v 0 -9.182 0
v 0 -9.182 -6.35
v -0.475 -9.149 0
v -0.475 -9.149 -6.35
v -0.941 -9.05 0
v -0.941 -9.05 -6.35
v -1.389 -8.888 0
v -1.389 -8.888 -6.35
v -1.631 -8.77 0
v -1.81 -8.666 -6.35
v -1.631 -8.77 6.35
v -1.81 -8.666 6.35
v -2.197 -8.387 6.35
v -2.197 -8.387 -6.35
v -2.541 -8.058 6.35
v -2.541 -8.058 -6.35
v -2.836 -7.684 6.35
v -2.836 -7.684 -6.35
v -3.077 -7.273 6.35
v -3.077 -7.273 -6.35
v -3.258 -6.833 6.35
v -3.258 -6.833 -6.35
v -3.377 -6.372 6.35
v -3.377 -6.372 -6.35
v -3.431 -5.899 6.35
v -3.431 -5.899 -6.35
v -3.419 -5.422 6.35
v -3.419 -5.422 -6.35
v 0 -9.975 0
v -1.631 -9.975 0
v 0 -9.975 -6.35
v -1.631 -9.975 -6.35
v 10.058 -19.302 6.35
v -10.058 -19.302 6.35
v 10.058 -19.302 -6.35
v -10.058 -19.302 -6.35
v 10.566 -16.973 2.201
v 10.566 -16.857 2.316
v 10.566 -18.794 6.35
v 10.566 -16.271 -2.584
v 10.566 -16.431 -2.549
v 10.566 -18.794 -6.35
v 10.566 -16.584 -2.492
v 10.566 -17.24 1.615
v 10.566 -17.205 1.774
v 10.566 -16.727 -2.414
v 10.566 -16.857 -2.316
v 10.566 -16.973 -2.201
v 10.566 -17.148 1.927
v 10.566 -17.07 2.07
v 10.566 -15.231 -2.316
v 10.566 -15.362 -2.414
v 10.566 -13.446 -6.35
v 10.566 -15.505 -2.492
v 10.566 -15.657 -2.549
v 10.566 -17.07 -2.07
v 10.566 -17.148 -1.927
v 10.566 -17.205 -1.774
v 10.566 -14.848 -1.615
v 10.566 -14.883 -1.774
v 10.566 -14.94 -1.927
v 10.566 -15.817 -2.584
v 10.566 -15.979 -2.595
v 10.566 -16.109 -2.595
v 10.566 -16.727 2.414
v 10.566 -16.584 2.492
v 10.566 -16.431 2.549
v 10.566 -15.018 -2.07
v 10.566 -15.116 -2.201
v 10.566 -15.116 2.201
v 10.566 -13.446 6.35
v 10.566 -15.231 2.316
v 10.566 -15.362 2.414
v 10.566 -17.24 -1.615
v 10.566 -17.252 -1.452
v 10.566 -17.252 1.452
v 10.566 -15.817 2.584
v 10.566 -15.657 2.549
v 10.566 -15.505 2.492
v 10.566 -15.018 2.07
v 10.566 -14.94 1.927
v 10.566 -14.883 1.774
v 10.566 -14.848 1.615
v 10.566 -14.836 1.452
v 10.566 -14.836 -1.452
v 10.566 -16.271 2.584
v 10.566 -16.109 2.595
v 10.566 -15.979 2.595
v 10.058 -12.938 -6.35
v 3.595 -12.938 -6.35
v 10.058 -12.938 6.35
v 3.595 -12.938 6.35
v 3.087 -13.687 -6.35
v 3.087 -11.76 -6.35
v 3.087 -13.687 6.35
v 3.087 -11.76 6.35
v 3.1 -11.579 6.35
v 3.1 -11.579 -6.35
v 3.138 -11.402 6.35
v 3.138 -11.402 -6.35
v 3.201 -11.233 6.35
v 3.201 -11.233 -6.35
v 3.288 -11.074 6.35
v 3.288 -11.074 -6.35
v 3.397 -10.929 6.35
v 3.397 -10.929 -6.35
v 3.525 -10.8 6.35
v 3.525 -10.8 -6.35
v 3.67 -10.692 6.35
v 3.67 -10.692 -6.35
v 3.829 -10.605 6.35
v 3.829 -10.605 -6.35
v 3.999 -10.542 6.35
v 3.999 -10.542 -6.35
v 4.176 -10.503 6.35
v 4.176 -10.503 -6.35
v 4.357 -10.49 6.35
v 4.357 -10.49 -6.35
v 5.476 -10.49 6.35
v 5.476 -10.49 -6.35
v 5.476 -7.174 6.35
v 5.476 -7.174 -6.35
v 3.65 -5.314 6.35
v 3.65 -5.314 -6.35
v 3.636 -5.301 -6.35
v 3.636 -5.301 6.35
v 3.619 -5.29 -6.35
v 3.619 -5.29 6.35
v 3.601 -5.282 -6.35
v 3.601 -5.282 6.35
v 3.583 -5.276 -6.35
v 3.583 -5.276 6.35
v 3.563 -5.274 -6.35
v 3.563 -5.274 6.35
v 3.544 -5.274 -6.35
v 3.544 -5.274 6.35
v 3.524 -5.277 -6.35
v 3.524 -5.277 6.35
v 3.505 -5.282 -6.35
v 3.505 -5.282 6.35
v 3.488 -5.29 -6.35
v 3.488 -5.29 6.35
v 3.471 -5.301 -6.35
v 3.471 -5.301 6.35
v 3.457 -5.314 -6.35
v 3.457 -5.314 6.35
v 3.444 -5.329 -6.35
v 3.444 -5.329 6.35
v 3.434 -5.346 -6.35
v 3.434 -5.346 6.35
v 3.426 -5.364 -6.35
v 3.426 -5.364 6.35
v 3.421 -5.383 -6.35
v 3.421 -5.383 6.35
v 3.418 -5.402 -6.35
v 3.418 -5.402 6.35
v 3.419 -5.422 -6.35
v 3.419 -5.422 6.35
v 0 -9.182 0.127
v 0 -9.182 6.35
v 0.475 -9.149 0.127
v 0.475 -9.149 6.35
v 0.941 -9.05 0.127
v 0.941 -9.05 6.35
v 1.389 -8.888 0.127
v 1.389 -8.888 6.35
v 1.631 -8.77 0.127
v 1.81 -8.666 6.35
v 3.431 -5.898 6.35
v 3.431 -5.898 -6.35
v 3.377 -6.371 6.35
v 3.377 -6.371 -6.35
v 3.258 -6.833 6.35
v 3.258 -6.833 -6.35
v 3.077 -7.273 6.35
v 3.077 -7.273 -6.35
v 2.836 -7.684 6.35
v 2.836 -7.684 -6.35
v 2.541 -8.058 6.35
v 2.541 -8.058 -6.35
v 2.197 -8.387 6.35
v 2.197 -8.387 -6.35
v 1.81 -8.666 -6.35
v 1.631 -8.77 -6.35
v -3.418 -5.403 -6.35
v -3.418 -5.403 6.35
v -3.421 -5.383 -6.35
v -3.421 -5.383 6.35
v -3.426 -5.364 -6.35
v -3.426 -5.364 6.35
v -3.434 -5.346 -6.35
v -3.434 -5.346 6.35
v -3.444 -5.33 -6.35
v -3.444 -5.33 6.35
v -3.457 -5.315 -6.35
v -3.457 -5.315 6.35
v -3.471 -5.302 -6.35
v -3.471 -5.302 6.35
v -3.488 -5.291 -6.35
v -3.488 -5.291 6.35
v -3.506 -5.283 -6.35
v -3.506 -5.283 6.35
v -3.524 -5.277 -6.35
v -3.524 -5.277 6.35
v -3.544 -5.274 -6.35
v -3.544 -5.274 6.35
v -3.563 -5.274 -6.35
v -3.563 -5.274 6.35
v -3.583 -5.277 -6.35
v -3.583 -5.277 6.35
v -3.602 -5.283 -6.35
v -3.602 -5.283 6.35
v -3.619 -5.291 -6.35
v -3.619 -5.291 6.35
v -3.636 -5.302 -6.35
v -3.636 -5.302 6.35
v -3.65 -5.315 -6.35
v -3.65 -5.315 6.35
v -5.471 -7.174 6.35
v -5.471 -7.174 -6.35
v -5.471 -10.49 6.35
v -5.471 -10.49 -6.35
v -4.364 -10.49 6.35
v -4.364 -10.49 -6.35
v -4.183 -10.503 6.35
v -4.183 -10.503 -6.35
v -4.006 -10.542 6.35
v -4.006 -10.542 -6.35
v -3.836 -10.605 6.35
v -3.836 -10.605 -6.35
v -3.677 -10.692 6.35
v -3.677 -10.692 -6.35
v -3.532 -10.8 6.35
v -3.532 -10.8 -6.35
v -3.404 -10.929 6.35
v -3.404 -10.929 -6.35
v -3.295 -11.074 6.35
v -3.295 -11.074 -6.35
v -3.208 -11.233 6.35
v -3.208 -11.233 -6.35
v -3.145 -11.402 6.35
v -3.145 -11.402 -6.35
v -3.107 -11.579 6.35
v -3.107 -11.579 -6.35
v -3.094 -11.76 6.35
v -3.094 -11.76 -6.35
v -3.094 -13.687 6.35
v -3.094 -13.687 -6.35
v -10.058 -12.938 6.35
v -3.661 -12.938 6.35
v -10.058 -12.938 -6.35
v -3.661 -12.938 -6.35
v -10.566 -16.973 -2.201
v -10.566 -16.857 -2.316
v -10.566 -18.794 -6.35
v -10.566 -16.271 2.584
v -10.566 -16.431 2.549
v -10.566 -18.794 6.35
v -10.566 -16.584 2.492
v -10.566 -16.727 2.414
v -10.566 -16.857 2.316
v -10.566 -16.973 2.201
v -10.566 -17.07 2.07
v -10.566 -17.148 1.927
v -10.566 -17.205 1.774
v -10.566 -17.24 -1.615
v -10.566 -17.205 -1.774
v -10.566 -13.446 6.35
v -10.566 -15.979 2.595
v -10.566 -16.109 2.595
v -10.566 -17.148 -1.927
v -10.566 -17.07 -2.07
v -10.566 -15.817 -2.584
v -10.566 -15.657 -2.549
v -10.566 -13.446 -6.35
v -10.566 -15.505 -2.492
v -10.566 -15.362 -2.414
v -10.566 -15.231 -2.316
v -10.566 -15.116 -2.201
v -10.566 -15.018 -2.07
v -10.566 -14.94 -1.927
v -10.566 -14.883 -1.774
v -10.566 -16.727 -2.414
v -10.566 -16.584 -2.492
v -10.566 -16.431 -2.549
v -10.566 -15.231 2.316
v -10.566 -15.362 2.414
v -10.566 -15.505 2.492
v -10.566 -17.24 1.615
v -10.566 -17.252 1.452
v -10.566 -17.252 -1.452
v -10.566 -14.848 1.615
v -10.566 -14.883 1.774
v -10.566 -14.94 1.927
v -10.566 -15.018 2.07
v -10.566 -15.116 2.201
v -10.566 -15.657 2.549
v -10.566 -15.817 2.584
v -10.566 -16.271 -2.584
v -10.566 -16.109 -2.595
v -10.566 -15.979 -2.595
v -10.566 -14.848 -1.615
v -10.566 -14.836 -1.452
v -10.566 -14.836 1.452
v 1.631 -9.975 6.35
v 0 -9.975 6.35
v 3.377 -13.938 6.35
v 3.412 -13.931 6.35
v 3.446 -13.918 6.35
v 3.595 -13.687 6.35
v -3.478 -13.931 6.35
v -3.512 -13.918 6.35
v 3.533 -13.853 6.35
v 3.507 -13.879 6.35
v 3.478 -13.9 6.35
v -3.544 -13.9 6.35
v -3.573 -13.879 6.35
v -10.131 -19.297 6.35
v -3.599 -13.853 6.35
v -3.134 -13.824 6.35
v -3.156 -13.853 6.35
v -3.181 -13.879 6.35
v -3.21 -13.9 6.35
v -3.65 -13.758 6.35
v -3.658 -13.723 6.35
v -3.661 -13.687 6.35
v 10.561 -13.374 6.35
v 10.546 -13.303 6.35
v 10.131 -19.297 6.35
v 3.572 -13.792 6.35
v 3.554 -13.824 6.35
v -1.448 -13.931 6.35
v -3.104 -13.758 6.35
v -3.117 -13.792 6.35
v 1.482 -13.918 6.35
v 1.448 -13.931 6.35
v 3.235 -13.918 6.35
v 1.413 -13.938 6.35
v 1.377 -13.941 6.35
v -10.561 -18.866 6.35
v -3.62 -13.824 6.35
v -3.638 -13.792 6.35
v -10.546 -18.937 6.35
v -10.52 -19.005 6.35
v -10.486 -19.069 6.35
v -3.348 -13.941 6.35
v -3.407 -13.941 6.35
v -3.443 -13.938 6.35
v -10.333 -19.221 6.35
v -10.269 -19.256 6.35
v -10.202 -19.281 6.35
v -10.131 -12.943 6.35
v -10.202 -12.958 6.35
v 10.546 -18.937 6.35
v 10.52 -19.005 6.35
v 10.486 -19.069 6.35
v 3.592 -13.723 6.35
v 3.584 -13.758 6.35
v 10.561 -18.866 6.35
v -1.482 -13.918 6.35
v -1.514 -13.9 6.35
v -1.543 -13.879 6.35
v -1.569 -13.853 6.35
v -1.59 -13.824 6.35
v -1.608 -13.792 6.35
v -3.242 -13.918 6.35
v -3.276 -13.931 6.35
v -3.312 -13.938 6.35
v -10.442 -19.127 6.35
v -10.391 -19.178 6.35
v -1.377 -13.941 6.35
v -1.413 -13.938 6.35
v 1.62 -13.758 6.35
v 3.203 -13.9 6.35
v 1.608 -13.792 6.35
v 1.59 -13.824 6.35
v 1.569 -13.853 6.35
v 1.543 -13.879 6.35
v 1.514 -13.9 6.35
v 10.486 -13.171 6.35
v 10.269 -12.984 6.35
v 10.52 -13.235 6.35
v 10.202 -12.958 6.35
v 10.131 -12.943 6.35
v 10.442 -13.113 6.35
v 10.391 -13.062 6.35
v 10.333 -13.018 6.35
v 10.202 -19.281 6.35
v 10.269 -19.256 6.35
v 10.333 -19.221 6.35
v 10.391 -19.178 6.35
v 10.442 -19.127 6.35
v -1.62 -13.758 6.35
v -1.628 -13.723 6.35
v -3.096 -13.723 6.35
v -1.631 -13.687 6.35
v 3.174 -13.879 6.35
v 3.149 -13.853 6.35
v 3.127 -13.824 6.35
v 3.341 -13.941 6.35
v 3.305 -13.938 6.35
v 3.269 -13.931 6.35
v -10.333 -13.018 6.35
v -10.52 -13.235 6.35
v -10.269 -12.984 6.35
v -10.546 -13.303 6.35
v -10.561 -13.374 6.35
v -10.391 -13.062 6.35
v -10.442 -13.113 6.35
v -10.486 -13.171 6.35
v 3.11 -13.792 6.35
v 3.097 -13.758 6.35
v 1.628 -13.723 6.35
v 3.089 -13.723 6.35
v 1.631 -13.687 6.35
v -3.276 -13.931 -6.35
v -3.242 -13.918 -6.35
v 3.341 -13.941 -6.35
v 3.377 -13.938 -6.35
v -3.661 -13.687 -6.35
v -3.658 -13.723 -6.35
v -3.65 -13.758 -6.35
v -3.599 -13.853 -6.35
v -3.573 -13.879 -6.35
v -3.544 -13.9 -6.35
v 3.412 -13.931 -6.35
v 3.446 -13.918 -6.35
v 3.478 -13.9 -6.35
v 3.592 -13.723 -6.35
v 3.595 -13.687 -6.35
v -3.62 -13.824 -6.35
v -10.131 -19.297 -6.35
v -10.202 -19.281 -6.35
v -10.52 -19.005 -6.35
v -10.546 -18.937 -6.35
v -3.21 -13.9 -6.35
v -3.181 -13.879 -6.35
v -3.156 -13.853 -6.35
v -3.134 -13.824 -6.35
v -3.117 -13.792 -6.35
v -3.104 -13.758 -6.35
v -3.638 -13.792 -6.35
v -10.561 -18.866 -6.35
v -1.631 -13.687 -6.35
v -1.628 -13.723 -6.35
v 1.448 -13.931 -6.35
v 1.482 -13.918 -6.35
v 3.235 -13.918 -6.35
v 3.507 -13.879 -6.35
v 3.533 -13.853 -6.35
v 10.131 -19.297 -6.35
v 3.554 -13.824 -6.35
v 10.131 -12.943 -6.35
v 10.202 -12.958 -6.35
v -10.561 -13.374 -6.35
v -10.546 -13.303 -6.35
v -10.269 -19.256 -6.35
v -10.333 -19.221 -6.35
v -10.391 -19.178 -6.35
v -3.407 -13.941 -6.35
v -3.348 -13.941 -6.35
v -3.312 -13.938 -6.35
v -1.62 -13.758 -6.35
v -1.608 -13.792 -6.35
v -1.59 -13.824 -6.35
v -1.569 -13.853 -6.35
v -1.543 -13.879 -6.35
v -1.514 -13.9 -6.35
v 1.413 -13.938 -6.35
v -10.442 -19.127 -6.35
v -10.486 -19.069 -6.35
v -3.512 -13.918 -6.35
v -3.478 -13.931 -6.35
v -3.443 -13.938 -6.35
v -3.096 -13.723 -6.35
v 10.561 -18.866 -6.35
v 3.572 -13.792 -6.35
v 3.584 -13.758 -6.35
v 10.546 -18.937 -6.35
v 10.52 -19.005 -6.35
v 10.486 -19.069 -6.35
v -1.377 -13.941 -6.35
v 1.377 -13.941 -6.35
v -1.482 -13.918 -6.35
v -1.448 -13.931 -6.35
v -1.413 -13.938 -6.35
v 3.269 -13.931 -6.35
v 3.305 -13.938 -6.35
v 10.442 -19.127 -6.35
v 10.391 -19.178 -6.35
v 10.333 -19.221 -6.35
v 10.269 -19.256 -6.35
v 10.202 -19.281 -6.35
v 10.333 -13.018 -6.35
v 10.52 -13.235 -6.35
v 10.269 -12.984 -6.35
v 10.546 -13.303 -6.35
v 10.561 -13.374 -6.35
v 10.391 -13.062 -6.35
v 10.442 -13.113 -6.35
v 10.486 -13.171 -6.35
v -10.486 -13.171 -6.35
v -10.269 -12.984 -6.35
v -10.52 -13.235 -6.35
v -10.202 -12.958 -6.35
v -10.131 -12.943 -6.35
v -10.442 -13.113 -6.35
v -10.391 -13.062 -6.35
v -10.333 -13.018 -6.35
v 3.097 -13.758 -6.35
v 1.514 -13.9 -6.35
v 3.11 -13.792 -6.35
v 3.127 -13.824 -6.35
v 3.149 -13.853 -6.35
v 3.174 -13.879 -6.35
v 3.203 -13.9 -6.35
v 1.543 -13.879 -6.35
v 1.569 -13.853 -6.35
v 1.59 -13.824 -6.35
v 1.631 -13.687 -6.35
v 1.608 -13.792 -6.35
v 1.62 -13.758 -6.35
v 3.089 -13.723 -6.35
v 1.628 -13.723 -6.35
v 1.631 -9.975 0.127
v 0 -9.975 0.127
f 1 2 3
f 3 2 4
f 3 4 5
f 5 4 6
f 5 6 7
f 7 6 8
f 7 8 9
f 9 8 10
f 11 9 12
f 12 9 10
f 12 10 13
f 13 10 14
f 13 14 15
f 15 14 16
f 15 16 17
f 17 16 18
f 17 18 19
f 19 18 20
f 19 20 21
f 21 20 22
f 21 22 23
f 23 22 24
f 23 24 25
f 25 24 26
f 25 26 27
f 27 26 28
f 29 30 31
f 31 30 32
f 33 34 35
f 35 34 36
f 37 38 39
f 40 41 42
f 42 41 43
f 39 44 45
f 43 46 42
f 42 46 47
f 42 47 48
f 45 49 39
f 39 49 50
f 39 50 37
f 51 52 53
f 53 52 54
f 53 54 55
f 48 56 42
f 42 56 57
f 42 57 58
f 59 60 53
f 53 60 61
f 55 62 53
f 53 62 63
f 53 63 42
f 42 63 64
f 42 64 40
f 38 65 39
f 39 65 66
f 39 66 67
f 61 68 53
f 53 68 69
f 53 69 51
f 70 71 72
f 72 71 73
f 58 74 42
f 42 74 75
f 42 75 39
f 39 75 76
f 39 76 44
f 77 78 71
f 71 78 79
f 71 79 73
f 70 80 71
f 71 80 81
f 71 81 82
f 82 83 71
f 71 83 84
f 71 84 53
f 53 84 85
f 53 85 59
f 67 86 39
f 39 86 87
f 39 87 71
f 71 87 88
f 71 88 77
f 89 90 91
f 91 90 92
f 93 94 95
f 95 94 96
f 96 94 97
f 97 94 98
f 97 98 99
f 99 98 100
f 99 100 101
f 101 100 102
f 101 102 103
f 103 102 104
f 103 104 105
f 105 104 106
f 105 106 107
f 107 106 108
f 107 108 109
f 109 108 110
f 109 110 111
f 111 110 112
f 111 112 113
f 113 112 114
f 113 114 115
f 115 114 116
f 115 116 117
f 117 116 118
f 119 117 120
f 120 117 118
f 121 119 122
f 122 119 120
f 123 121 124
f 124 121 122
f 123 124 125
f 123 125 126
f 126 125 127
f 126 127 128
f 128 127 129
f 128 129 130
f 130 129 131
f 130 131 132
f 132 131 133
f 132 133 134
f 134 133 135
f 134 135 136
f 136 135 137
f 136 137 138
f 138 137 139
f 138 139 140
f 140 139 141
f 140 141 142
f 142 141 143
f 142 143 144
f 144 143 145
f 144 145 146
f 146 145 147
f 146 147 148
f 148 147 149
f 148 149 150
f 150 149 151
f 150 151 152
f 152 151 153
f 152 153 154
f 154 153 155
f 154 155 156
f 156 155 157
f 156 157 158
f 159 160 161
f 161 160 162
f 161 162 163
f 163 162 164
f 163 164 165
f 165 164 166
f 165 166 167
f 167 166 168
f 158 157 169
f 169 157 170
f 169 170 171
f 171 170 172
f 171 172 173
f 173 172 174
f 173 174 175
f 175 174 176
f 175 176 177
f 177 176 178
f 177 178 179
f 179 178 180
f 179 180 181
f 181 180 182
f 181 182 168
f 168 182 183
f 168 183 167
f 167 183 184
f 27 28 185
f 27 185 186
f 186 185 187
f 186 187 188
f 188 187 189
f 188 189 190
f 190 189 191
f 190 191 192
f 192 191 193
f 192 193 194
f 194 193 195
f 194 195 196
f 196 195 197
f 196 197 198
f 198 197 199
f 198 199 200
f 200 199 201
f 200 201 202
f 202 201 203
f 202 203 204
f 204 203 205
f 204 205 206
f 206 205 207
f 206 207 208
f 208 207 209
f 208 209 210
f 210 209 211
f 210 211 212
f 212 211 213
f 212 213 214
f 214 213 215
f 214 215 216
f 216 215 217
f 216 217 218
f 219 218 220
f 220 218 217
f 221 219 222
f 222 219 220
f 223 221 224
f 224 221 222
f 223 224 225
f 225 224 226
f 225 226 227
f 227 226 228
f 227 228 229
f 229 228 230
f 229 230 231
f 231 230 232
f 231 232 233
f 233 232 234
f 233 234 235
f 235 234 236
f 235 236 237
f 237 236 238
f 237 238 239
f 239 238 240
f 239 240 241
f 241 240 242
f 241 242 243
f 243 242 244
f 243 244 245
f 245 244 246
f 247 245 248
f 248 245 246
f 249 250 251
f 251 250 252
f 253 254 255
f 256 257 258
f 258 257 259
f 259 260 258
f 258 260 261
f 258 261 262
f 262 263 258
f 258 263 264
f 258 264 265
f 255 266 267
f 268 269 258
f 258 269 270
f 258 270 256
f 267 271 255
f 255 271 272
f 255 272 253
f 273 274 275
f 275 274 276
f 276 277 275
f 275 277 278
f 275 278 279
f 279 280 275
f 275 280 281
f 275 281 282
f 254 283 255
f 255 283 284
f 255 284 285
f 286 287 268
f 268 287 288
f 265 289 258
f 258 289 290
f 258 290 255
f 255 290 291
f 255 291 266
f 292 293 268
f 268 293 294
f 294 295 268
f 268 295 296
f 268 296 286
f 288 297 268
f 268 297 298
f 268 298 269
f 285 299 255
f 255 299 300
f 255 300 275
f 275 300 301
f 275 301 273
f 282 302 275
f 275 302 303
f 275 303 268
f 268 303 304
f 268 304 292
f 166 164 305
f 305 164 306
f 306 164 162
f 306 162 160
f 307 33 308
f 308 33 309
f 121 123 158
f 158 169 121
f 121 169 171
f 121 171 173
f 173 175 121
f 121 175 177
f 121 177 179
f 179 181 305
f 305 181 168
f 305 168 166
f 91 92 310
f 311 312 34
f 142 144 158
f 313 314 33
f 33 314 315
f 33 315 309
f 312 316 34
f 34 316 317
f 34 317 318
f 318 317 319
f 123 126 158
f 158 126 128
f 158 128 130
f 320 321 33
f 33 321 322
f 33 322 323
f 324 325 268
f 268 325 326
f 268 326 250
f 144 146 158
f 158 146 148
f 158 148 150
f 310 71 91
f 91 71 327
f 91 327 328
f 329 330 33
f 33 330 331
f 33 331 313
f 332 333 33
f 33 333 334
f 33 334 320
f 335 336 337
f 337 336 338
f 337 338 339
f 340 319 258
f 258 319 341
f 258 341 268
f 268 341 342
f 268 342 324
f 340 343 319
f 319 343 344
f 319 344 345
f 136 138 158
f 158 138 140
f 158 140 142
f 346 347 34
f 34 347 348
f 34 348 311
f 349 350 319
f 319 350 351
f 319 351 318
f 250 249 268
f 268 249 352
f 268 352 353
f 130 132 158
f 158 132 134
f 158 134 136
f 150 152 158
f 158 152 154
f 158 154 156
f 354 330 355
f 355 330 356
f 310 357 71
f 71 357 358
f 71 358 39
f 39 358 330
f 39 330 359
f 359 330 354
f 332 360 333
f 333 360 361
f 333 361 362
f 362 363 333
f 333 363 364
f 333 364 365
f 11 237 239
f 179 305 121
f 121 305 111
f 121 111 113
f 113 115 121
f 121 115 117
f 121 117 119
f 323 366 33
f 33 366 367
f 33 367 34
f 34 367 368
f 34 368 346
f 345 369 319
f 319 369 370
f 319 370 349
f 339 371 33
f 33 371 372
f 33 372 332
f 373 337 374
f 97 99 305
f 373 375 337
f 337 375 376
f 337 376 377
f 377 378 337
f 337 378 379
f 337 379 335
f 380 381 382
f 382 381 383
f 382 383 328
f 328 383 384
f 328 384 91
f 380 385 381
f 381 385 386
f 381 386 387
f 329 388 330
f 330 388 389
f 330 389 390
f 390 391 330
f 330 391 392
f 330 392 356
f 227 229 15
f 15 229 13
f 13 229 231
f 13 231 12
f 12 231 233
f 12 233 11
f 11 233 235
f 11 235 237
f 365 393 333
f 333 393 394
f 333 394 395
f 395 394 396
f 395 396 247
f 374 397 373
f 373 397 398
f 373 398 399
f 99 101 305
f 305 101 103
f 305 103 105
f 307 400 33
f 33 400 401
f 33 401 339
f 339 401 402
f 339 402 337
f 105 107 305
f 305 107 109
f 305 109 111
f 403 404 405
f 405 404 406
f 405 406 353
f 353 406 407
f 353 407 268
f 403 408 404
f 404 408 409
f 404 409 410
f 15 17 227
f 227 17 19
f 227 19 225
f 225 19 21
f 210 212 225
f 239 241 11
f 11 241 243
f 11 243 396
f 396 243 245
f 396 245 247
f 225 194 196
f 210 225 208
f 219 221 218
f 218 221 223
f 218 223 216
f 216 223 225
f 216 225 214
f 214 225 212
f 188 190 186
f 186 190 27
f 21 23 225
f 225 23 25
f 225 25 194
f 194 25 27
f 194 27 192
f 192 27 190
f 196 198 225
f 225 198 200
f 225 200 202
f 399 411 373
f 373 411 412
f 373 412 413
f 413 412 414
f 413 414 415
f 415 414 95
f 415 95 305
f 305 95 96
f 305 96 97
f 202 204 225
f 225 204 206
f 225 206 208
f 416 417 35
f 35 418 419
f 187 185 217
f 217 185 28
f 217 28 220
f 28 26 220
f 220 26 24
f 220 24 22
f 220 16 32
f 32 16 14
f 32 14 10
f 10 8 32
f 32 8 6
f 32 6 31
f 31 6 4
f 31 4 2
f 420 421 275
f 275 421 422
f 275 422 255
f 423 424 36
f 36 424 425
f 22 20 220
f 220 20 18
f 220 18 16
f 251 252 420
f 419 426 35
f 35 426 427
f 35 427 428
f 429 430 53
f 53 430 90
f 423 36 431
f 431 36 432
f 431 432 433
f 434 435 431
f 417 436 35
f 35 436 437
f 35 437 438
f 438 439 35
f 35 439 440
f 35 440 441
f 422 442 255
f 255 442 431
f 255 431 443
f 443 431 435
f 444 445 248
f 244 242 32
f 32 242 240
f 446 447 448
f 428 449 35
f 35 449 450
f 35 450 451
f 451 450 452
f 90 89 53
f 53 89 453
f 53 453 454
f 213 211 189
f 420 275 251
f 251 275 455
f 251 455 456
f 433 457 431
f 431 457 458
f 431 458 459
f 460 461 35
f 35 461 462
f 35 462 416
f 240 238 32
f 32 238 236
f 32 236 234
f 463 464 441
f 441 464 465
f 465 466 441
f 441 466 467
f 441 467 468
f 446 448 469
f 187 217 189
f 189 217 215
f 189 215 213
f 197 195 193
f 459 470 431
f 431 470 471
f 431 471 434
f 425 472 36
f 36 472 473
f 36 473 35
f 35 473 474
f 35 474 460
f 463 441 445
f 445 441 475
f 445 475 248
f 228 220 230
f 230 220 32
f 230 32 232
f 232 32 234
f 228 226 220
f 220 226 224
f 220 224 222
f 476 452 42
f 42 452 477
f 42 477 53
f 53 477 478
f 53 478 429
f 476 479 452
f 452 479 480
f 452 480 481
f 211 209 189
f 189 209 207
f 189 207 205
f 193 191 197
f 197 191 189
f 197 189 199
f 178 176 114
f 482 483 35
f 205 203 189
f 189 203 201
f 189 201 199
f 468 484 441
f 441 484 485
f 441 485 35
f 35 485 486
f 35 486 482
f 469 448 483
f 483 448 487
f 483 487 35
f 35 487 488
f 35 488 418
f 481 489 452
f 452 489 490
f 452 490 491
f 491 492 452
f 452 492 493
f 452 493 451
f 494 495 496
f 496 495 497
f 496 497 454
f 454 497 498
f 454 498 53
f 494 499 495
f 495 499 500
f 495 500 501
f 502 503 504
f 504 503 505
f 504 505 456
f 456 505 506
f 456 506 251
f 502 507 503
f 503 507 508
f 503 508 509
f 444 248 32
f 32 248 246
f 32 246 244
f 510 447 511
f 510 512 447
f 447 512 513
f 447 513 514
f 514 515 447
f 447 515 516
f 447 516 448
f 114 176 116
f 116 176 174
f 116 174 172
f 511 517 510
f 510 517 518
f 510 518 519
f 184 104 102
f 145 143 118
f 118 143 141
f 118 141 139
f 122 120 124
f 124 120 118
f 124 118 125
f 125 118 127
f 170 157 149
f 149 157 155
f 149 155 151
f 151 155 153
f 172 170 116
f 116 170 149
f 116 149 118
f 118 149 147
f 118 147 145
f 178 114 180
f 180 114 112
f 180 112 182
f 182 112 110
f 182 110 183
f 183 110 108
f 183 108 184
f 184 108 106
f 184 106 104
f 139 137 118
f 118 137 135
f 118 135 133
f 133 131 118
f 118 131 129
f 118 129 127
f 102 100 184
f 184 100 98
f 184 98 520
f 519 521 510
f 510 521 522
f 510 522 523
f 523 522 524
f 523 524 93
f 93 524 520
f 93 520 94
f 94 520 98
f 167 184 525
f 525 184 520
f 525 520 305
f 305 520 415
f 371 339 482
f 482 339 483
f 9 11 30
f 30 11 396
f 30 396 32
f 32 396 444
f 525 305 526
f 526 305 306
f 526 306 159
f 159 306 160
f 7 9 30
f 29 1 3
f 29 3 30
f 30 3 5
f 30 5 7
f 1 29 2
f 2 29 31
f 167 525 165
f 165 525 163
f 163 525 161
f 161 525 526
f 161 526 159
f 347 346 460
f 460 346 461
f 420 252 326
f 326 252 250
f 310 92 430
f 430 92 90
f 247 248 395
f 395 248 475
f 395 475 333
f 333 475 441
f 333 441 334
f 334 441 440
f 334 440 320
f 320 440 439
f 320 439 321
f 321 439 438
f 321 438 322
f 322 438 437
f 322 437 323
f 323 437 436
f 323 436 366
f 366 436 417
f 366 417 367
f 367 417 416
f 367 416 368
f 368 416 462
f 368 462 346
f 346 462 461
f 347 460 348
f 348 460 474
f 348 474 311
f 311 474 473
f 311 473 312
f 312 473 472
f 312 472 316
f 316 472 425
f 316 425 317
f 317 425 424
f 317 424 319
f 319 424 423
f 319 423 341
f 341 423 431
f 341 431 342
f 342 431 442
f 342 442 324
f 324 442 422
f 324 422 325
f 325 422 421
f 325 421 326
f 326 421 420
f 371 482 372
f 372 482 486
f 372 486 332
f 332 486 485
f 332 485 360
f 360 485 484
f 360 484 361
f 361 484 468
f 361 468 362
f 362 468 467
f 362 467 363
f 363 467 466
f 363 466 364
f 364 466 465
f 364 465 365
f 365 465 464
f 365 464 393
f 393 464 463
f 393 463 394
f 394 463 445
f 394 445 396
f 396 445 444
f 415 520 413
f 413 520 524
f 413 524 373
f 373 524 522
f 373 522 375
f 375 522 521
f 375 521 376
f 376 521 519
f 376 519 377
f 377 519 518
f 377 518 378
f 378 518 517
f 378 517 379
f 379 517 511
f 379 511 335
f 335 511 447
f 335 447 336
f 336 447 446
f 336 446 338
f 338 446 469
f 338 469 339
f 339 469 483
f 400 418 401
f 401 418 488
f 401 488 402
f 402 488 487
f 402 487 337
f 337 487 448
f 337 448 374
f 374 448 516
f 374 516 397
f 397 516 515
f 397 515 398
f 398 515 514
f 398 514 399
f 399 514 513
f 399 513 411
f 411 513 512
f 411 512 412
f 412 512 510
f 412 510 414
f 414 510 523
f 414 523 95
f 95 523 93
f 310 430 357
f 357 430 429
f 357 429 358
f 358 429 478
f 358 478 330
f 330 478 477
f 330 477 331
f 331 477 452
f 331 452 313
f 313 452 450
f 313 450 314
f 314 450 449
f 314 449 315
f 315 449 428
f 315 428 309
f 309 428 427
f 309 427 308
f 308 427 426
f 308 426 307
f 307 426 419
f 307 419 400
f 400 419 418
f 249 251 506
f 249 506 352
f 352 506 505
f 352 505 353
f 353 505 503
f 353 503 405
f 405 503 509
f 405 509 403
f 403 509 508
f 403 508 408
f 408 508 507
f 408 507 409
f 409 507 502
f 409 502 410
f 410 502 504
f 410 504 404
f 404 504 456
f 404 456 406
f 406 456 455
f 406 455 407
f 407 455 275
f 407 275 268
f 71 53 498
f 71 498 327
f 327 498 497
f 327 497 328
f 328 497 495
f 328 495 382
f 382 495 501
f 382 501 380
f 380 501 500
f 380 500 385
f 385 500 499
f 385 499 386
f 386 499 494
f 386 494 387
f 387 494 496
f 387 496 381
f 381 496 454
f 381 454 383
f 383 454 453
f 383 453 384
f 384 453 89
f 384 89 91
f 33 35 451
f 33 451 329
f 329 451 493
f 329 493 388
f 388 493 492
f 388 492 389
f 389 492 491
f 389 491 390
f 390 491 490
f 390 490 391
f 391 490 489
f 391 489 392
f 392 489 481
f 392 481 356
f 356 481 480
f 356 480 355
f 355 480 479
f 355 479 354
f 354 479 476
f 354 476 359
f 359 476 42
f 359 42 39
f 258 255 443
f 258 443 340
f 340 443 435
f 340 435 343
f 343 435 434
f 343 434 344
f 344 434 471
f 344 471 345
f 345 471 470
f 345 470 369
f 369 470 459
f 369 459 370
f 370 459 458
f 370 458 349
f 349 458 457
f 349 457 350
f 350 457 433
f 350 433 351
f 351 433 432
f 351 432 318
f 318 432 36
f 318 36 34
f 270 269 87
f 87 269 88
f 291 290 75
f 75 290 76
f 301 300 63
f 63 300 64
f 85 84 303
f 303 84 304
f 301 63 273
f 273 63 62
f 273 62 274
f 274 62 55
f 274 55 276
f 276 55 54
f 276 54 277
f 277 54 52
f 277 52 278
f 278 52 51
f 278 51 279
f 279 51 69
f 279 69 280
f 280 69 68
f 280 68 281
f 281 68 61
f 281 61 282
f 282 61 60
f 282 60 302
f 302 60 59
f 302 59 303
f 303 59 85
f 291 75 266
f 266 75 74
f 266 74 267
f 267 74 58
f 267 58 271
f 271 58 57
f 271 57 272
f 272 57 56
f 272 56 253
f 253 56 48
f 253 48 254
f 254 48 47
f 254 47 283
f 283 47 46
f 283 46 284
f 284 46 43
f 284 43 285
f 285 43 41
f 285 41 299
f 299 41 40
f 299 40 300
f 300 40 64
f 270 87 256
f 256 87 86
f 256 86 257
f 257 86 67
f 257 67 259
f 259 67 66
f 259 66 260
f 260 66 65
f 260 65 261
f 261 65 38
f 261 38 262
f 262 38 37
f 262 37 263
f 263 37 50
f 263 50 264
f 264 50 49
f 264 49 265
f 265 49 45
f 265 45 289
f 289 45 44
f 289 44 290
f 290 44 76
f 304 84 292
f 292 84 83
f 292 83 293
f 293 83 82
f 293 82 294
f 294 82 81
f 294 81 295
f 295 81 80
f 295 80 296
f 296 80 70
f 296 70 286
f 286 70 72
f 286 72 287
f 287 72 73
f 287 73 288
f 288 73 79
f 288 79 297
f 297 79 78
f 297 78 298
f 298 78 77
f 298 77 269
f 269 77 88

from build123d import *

# Parameters (mm, degrees)
BOSS_EXTRUDE9_DEPTH      = 6.35
SKETCH4_W                = 3.261538064
SKETCH4_H                = 3.965348827
CUT_EXTRUDE2_DEPTH       = 26.406776986
SKETCH5_W                = 1.630769032
SKETCH5_H                = 1.267236454
CUT_EXTRUDE6_DEPTH       = 6.35
SKETCH6_W                = 1.630769032
SKETCH6_H                = 1.247570224
CUT_EXTRUDE7_DEPTH       = 6.477
CUT_EXTRUDE9_DEPTH       = 23.902768758
CUT_EXTRUDE9_DEPTH_BACK  = 23.902768758
SKETCH8_W                = 0.566855721
SKETCH8_H                = 1.002964872
CUT_EXTRUDE10_DEPTH      = 26.406776986
CUT_EXTRUDE10_DEPTH_BACK = 26.406776986
SKETCH9_W                = 0.508
SKETCH9_H                = 1.002964872
FILLET1_R                = 0.254
FILLET2_R                = 0.254
FILLET3_R                = 0.254
FILLET4_R                = 0.508
FILLET5_R                = 0.508
SKETCH11_W               = 5.19034067
SKETCH11_H               = 2.415254944
CUT_EXTRUDE11_DEPTH      = 30.316944626
FILLET6_R                = 1.143


with BuildPart() as part:
    # Sketch2 → Boss-Extrude9 (new, symmetric)
    with BuildSketch(Plane.XY):
        with BuildLine():
            Line((-5.471488307, -10.4902), (-4.36371454, -10.4902))
            ThreePointArc((-4.36371454, -10.4902), (-3.465688928, -10.862174388), (-3.09371454, -11.7602))
            Line((-3.09371454, -11.7602), (-3.09371454, -12.937827191))
            Line((-3.09371454, -12.937827191), (-10.566399977, -12.937827191))
            Line((-10.566399977, -12.937827191), (-10.566399977, -19.301956075))
            Line((-10.566399977, -19.301956075), (10.566399977, -19.301956075))
            Line((10.566399977, -19.301956075), (10.566399977, -12.937827191))
            Line((10.566399977, -12.937827191), (3.086674887, -12.937827191))
            Line((3.086674887, -12.937827191), (3.086674887, -11.7602))
            ThreePointArc((3.086674887, -11.7602), (3.458649275, -10.862174388), (4.356674887, -10.4902))
            Line((4.356674887, -10.4902), (5.476039751, -10.4902))
            Line((5.476039751, -10.4902), (5.476039751, -7.173536635))
            Line((5.476039751, -7.173536635), (3.650231899, -5.31386943))
            ThreePointArc((3.650231899, -5.31386943), (3.496357897, -5.285953607), (3.418648834, -5.421665813))
            ThreePointArc((3.418648834, -5.421665813), (0.00035136, -9.18188013), (-3.418715481, -5.422365367))
            ThreePointArc((-3.418715481, -5.422365367), (-3.496506609, -5.286643819), (-3.650404442, -5.314701882))
            Line((-3.650404442, -5.314701882), (-5.471488307, -7.173600332))
            Line((-5.471488307, -7.173600332), (-5.471488307, -10.4902))
        make_face()
    extrude(amount=BOSS_EXTRUDE9_DEPTH, both=True)

    # Sketch4 → Cut-Extrude2 (cut, through all)
    with BuildSketch(Plane.XY.offset(6.35)):
        with Locations((0, -11.95811765)):
            Rectangle(SKETCH4_W, SKETCH4_H)
    extrude(amount=-CUT_EXTRUDE2_DEPTH, mode=Mode.SUBTRACT)

    # Sketch5 → Cut-Extrude6 (cut, symmetric)
    with BuildSketch(Plane.XY.offset(6.35)):
        with Locations((-0.815384516, -9.341825009)):
            Rectangle(SKETCH5_W, SKETCH5_H)
    extrude(amount=CUT_EXTRUDE6_DEPTH, both=True, mode=Mode.SUBTRACT)

    # Sketch6 → Cut-Extrude7 (cut, symmetric)
    with BuildSketch(Plane(origin=(0, 0, -6.35), x_dir=(-1, 0, 0), z_dir=(0, 0, -1))):
        with Locations((-0.815384516, -9.351658124)):
            Rectangle(SKETCH6_W, SKETCH6_H)
    extrude(amount=CUT_EXTRUDE7_DEPTH, both=True, mode=Mode.SUBTRACT)

    # Sketch8 → Cut-Extrude9 (cut, two sides: drawn at the far end of the back side and taken through both)
    with BuildSketch(Plane.XY.offset(-CUT_EXTRUDE9_DEPTH_BACK)):
        with Locations((-3.377142401, -13.439309627)):
            Rectangle(SKETCH8_W, SKETCH8_H)
    extrude(amount=CUT_EXTRUDE9_DEPTH + CUT_EXTRUDE9_DEPTH_BACK, mode=Mode.SUBTRACT)

    # Sketch9 → Cut-Extrude10 (cut, two sides: drawn at the far end of the back side and taken through both)
    with BuildSketch(Plane.XY.offset(6.35).offset(-CUT_EXTRUDE10_DEPTH_BACK)):
        with Locations((3.340674887, -13.439309627)):
            Rectangle(SKETCH9_W, SKETCH9_H)
    extrude(amount=CUT_EXTRUDE10_DEPTH + CUT_EXTRUDE10_DEPTH_BACK, mode=Mode.SUBTRACT)

    # Fillet1
    fillet1_edges = [part.edges().sort_by_distance(p)[0] for p in [
        (-3.09371454, -13.940792063, 0),
    ]]
    fillet(fillet1_edges, radius=FILLET1_R)

    # Fillet2
    fillet2_edges = [part.edges().sort_by_distance(p)[0] for p in [
        (-3.660570261, -13.940792063, 0),
    ]]
    fillet(fillet2_edges, radius=FILLET2_R)

    # Fillet3
    fillet3_edges = [part.edges().sort_by_distance(p)[0] for p in [
        (3.594674887, -13.940792063, 0),
        (3.086674887, -13.940792063, 0),
        (1.630769032, -13.940792063, 0),
        (-1.630769032, -13.940792063, 0),
    ]]
    fillet(fillet3_edges, radius=FILLET3_R - 0.0001)  # a hair under: the kernel refuses the full size

    # Fillet4
    fillet4_edges = [part.edges().sort_by_distance(p)[0] for p in [
        (-10.566399977, -12.937827191, 0),
    ]]
    fillet(fillet4_edges, radius=FILLET4_R)

    # Fillet5
    fillet5_edges = [part.edges().sort_by_distance(p)[0] for p in [
        (-10.566399977, -19.301956075, 0),
        (10.566399977, -12.937827191, 0),
        (10.566399977, -19.301956075, 0),
    ]]
    fillet(fillet5_edges, radius=FILLET5_R)

    # Sketch11 → Cut-Extrude11 (cut, through all)
    with BuildSketch(Plane.ZY.offset(10.566399977)):
        with Locations((0, -16.044100378)):
            Rectangle(SKETCH11_W, SKETCH11_H)
    extrude(amount=-CUT_EXTRUDE11_DEPTH, mode=Mode.SUBTRACT)

    # Fillet6
    fillet6_edges = [part.edges().sort_by_distance(p)[0] for p in [
        (0, -14.836472906, 2.595170335),
        (0, -17.25172785, 2.595170335),
        (0, -17.25172785, -2.595170335),
        (0, -14.836472906, -2.595170335),
    ]]
    fillet(fillet6_edges, radius=FILLET6_R)


solid = part.part
